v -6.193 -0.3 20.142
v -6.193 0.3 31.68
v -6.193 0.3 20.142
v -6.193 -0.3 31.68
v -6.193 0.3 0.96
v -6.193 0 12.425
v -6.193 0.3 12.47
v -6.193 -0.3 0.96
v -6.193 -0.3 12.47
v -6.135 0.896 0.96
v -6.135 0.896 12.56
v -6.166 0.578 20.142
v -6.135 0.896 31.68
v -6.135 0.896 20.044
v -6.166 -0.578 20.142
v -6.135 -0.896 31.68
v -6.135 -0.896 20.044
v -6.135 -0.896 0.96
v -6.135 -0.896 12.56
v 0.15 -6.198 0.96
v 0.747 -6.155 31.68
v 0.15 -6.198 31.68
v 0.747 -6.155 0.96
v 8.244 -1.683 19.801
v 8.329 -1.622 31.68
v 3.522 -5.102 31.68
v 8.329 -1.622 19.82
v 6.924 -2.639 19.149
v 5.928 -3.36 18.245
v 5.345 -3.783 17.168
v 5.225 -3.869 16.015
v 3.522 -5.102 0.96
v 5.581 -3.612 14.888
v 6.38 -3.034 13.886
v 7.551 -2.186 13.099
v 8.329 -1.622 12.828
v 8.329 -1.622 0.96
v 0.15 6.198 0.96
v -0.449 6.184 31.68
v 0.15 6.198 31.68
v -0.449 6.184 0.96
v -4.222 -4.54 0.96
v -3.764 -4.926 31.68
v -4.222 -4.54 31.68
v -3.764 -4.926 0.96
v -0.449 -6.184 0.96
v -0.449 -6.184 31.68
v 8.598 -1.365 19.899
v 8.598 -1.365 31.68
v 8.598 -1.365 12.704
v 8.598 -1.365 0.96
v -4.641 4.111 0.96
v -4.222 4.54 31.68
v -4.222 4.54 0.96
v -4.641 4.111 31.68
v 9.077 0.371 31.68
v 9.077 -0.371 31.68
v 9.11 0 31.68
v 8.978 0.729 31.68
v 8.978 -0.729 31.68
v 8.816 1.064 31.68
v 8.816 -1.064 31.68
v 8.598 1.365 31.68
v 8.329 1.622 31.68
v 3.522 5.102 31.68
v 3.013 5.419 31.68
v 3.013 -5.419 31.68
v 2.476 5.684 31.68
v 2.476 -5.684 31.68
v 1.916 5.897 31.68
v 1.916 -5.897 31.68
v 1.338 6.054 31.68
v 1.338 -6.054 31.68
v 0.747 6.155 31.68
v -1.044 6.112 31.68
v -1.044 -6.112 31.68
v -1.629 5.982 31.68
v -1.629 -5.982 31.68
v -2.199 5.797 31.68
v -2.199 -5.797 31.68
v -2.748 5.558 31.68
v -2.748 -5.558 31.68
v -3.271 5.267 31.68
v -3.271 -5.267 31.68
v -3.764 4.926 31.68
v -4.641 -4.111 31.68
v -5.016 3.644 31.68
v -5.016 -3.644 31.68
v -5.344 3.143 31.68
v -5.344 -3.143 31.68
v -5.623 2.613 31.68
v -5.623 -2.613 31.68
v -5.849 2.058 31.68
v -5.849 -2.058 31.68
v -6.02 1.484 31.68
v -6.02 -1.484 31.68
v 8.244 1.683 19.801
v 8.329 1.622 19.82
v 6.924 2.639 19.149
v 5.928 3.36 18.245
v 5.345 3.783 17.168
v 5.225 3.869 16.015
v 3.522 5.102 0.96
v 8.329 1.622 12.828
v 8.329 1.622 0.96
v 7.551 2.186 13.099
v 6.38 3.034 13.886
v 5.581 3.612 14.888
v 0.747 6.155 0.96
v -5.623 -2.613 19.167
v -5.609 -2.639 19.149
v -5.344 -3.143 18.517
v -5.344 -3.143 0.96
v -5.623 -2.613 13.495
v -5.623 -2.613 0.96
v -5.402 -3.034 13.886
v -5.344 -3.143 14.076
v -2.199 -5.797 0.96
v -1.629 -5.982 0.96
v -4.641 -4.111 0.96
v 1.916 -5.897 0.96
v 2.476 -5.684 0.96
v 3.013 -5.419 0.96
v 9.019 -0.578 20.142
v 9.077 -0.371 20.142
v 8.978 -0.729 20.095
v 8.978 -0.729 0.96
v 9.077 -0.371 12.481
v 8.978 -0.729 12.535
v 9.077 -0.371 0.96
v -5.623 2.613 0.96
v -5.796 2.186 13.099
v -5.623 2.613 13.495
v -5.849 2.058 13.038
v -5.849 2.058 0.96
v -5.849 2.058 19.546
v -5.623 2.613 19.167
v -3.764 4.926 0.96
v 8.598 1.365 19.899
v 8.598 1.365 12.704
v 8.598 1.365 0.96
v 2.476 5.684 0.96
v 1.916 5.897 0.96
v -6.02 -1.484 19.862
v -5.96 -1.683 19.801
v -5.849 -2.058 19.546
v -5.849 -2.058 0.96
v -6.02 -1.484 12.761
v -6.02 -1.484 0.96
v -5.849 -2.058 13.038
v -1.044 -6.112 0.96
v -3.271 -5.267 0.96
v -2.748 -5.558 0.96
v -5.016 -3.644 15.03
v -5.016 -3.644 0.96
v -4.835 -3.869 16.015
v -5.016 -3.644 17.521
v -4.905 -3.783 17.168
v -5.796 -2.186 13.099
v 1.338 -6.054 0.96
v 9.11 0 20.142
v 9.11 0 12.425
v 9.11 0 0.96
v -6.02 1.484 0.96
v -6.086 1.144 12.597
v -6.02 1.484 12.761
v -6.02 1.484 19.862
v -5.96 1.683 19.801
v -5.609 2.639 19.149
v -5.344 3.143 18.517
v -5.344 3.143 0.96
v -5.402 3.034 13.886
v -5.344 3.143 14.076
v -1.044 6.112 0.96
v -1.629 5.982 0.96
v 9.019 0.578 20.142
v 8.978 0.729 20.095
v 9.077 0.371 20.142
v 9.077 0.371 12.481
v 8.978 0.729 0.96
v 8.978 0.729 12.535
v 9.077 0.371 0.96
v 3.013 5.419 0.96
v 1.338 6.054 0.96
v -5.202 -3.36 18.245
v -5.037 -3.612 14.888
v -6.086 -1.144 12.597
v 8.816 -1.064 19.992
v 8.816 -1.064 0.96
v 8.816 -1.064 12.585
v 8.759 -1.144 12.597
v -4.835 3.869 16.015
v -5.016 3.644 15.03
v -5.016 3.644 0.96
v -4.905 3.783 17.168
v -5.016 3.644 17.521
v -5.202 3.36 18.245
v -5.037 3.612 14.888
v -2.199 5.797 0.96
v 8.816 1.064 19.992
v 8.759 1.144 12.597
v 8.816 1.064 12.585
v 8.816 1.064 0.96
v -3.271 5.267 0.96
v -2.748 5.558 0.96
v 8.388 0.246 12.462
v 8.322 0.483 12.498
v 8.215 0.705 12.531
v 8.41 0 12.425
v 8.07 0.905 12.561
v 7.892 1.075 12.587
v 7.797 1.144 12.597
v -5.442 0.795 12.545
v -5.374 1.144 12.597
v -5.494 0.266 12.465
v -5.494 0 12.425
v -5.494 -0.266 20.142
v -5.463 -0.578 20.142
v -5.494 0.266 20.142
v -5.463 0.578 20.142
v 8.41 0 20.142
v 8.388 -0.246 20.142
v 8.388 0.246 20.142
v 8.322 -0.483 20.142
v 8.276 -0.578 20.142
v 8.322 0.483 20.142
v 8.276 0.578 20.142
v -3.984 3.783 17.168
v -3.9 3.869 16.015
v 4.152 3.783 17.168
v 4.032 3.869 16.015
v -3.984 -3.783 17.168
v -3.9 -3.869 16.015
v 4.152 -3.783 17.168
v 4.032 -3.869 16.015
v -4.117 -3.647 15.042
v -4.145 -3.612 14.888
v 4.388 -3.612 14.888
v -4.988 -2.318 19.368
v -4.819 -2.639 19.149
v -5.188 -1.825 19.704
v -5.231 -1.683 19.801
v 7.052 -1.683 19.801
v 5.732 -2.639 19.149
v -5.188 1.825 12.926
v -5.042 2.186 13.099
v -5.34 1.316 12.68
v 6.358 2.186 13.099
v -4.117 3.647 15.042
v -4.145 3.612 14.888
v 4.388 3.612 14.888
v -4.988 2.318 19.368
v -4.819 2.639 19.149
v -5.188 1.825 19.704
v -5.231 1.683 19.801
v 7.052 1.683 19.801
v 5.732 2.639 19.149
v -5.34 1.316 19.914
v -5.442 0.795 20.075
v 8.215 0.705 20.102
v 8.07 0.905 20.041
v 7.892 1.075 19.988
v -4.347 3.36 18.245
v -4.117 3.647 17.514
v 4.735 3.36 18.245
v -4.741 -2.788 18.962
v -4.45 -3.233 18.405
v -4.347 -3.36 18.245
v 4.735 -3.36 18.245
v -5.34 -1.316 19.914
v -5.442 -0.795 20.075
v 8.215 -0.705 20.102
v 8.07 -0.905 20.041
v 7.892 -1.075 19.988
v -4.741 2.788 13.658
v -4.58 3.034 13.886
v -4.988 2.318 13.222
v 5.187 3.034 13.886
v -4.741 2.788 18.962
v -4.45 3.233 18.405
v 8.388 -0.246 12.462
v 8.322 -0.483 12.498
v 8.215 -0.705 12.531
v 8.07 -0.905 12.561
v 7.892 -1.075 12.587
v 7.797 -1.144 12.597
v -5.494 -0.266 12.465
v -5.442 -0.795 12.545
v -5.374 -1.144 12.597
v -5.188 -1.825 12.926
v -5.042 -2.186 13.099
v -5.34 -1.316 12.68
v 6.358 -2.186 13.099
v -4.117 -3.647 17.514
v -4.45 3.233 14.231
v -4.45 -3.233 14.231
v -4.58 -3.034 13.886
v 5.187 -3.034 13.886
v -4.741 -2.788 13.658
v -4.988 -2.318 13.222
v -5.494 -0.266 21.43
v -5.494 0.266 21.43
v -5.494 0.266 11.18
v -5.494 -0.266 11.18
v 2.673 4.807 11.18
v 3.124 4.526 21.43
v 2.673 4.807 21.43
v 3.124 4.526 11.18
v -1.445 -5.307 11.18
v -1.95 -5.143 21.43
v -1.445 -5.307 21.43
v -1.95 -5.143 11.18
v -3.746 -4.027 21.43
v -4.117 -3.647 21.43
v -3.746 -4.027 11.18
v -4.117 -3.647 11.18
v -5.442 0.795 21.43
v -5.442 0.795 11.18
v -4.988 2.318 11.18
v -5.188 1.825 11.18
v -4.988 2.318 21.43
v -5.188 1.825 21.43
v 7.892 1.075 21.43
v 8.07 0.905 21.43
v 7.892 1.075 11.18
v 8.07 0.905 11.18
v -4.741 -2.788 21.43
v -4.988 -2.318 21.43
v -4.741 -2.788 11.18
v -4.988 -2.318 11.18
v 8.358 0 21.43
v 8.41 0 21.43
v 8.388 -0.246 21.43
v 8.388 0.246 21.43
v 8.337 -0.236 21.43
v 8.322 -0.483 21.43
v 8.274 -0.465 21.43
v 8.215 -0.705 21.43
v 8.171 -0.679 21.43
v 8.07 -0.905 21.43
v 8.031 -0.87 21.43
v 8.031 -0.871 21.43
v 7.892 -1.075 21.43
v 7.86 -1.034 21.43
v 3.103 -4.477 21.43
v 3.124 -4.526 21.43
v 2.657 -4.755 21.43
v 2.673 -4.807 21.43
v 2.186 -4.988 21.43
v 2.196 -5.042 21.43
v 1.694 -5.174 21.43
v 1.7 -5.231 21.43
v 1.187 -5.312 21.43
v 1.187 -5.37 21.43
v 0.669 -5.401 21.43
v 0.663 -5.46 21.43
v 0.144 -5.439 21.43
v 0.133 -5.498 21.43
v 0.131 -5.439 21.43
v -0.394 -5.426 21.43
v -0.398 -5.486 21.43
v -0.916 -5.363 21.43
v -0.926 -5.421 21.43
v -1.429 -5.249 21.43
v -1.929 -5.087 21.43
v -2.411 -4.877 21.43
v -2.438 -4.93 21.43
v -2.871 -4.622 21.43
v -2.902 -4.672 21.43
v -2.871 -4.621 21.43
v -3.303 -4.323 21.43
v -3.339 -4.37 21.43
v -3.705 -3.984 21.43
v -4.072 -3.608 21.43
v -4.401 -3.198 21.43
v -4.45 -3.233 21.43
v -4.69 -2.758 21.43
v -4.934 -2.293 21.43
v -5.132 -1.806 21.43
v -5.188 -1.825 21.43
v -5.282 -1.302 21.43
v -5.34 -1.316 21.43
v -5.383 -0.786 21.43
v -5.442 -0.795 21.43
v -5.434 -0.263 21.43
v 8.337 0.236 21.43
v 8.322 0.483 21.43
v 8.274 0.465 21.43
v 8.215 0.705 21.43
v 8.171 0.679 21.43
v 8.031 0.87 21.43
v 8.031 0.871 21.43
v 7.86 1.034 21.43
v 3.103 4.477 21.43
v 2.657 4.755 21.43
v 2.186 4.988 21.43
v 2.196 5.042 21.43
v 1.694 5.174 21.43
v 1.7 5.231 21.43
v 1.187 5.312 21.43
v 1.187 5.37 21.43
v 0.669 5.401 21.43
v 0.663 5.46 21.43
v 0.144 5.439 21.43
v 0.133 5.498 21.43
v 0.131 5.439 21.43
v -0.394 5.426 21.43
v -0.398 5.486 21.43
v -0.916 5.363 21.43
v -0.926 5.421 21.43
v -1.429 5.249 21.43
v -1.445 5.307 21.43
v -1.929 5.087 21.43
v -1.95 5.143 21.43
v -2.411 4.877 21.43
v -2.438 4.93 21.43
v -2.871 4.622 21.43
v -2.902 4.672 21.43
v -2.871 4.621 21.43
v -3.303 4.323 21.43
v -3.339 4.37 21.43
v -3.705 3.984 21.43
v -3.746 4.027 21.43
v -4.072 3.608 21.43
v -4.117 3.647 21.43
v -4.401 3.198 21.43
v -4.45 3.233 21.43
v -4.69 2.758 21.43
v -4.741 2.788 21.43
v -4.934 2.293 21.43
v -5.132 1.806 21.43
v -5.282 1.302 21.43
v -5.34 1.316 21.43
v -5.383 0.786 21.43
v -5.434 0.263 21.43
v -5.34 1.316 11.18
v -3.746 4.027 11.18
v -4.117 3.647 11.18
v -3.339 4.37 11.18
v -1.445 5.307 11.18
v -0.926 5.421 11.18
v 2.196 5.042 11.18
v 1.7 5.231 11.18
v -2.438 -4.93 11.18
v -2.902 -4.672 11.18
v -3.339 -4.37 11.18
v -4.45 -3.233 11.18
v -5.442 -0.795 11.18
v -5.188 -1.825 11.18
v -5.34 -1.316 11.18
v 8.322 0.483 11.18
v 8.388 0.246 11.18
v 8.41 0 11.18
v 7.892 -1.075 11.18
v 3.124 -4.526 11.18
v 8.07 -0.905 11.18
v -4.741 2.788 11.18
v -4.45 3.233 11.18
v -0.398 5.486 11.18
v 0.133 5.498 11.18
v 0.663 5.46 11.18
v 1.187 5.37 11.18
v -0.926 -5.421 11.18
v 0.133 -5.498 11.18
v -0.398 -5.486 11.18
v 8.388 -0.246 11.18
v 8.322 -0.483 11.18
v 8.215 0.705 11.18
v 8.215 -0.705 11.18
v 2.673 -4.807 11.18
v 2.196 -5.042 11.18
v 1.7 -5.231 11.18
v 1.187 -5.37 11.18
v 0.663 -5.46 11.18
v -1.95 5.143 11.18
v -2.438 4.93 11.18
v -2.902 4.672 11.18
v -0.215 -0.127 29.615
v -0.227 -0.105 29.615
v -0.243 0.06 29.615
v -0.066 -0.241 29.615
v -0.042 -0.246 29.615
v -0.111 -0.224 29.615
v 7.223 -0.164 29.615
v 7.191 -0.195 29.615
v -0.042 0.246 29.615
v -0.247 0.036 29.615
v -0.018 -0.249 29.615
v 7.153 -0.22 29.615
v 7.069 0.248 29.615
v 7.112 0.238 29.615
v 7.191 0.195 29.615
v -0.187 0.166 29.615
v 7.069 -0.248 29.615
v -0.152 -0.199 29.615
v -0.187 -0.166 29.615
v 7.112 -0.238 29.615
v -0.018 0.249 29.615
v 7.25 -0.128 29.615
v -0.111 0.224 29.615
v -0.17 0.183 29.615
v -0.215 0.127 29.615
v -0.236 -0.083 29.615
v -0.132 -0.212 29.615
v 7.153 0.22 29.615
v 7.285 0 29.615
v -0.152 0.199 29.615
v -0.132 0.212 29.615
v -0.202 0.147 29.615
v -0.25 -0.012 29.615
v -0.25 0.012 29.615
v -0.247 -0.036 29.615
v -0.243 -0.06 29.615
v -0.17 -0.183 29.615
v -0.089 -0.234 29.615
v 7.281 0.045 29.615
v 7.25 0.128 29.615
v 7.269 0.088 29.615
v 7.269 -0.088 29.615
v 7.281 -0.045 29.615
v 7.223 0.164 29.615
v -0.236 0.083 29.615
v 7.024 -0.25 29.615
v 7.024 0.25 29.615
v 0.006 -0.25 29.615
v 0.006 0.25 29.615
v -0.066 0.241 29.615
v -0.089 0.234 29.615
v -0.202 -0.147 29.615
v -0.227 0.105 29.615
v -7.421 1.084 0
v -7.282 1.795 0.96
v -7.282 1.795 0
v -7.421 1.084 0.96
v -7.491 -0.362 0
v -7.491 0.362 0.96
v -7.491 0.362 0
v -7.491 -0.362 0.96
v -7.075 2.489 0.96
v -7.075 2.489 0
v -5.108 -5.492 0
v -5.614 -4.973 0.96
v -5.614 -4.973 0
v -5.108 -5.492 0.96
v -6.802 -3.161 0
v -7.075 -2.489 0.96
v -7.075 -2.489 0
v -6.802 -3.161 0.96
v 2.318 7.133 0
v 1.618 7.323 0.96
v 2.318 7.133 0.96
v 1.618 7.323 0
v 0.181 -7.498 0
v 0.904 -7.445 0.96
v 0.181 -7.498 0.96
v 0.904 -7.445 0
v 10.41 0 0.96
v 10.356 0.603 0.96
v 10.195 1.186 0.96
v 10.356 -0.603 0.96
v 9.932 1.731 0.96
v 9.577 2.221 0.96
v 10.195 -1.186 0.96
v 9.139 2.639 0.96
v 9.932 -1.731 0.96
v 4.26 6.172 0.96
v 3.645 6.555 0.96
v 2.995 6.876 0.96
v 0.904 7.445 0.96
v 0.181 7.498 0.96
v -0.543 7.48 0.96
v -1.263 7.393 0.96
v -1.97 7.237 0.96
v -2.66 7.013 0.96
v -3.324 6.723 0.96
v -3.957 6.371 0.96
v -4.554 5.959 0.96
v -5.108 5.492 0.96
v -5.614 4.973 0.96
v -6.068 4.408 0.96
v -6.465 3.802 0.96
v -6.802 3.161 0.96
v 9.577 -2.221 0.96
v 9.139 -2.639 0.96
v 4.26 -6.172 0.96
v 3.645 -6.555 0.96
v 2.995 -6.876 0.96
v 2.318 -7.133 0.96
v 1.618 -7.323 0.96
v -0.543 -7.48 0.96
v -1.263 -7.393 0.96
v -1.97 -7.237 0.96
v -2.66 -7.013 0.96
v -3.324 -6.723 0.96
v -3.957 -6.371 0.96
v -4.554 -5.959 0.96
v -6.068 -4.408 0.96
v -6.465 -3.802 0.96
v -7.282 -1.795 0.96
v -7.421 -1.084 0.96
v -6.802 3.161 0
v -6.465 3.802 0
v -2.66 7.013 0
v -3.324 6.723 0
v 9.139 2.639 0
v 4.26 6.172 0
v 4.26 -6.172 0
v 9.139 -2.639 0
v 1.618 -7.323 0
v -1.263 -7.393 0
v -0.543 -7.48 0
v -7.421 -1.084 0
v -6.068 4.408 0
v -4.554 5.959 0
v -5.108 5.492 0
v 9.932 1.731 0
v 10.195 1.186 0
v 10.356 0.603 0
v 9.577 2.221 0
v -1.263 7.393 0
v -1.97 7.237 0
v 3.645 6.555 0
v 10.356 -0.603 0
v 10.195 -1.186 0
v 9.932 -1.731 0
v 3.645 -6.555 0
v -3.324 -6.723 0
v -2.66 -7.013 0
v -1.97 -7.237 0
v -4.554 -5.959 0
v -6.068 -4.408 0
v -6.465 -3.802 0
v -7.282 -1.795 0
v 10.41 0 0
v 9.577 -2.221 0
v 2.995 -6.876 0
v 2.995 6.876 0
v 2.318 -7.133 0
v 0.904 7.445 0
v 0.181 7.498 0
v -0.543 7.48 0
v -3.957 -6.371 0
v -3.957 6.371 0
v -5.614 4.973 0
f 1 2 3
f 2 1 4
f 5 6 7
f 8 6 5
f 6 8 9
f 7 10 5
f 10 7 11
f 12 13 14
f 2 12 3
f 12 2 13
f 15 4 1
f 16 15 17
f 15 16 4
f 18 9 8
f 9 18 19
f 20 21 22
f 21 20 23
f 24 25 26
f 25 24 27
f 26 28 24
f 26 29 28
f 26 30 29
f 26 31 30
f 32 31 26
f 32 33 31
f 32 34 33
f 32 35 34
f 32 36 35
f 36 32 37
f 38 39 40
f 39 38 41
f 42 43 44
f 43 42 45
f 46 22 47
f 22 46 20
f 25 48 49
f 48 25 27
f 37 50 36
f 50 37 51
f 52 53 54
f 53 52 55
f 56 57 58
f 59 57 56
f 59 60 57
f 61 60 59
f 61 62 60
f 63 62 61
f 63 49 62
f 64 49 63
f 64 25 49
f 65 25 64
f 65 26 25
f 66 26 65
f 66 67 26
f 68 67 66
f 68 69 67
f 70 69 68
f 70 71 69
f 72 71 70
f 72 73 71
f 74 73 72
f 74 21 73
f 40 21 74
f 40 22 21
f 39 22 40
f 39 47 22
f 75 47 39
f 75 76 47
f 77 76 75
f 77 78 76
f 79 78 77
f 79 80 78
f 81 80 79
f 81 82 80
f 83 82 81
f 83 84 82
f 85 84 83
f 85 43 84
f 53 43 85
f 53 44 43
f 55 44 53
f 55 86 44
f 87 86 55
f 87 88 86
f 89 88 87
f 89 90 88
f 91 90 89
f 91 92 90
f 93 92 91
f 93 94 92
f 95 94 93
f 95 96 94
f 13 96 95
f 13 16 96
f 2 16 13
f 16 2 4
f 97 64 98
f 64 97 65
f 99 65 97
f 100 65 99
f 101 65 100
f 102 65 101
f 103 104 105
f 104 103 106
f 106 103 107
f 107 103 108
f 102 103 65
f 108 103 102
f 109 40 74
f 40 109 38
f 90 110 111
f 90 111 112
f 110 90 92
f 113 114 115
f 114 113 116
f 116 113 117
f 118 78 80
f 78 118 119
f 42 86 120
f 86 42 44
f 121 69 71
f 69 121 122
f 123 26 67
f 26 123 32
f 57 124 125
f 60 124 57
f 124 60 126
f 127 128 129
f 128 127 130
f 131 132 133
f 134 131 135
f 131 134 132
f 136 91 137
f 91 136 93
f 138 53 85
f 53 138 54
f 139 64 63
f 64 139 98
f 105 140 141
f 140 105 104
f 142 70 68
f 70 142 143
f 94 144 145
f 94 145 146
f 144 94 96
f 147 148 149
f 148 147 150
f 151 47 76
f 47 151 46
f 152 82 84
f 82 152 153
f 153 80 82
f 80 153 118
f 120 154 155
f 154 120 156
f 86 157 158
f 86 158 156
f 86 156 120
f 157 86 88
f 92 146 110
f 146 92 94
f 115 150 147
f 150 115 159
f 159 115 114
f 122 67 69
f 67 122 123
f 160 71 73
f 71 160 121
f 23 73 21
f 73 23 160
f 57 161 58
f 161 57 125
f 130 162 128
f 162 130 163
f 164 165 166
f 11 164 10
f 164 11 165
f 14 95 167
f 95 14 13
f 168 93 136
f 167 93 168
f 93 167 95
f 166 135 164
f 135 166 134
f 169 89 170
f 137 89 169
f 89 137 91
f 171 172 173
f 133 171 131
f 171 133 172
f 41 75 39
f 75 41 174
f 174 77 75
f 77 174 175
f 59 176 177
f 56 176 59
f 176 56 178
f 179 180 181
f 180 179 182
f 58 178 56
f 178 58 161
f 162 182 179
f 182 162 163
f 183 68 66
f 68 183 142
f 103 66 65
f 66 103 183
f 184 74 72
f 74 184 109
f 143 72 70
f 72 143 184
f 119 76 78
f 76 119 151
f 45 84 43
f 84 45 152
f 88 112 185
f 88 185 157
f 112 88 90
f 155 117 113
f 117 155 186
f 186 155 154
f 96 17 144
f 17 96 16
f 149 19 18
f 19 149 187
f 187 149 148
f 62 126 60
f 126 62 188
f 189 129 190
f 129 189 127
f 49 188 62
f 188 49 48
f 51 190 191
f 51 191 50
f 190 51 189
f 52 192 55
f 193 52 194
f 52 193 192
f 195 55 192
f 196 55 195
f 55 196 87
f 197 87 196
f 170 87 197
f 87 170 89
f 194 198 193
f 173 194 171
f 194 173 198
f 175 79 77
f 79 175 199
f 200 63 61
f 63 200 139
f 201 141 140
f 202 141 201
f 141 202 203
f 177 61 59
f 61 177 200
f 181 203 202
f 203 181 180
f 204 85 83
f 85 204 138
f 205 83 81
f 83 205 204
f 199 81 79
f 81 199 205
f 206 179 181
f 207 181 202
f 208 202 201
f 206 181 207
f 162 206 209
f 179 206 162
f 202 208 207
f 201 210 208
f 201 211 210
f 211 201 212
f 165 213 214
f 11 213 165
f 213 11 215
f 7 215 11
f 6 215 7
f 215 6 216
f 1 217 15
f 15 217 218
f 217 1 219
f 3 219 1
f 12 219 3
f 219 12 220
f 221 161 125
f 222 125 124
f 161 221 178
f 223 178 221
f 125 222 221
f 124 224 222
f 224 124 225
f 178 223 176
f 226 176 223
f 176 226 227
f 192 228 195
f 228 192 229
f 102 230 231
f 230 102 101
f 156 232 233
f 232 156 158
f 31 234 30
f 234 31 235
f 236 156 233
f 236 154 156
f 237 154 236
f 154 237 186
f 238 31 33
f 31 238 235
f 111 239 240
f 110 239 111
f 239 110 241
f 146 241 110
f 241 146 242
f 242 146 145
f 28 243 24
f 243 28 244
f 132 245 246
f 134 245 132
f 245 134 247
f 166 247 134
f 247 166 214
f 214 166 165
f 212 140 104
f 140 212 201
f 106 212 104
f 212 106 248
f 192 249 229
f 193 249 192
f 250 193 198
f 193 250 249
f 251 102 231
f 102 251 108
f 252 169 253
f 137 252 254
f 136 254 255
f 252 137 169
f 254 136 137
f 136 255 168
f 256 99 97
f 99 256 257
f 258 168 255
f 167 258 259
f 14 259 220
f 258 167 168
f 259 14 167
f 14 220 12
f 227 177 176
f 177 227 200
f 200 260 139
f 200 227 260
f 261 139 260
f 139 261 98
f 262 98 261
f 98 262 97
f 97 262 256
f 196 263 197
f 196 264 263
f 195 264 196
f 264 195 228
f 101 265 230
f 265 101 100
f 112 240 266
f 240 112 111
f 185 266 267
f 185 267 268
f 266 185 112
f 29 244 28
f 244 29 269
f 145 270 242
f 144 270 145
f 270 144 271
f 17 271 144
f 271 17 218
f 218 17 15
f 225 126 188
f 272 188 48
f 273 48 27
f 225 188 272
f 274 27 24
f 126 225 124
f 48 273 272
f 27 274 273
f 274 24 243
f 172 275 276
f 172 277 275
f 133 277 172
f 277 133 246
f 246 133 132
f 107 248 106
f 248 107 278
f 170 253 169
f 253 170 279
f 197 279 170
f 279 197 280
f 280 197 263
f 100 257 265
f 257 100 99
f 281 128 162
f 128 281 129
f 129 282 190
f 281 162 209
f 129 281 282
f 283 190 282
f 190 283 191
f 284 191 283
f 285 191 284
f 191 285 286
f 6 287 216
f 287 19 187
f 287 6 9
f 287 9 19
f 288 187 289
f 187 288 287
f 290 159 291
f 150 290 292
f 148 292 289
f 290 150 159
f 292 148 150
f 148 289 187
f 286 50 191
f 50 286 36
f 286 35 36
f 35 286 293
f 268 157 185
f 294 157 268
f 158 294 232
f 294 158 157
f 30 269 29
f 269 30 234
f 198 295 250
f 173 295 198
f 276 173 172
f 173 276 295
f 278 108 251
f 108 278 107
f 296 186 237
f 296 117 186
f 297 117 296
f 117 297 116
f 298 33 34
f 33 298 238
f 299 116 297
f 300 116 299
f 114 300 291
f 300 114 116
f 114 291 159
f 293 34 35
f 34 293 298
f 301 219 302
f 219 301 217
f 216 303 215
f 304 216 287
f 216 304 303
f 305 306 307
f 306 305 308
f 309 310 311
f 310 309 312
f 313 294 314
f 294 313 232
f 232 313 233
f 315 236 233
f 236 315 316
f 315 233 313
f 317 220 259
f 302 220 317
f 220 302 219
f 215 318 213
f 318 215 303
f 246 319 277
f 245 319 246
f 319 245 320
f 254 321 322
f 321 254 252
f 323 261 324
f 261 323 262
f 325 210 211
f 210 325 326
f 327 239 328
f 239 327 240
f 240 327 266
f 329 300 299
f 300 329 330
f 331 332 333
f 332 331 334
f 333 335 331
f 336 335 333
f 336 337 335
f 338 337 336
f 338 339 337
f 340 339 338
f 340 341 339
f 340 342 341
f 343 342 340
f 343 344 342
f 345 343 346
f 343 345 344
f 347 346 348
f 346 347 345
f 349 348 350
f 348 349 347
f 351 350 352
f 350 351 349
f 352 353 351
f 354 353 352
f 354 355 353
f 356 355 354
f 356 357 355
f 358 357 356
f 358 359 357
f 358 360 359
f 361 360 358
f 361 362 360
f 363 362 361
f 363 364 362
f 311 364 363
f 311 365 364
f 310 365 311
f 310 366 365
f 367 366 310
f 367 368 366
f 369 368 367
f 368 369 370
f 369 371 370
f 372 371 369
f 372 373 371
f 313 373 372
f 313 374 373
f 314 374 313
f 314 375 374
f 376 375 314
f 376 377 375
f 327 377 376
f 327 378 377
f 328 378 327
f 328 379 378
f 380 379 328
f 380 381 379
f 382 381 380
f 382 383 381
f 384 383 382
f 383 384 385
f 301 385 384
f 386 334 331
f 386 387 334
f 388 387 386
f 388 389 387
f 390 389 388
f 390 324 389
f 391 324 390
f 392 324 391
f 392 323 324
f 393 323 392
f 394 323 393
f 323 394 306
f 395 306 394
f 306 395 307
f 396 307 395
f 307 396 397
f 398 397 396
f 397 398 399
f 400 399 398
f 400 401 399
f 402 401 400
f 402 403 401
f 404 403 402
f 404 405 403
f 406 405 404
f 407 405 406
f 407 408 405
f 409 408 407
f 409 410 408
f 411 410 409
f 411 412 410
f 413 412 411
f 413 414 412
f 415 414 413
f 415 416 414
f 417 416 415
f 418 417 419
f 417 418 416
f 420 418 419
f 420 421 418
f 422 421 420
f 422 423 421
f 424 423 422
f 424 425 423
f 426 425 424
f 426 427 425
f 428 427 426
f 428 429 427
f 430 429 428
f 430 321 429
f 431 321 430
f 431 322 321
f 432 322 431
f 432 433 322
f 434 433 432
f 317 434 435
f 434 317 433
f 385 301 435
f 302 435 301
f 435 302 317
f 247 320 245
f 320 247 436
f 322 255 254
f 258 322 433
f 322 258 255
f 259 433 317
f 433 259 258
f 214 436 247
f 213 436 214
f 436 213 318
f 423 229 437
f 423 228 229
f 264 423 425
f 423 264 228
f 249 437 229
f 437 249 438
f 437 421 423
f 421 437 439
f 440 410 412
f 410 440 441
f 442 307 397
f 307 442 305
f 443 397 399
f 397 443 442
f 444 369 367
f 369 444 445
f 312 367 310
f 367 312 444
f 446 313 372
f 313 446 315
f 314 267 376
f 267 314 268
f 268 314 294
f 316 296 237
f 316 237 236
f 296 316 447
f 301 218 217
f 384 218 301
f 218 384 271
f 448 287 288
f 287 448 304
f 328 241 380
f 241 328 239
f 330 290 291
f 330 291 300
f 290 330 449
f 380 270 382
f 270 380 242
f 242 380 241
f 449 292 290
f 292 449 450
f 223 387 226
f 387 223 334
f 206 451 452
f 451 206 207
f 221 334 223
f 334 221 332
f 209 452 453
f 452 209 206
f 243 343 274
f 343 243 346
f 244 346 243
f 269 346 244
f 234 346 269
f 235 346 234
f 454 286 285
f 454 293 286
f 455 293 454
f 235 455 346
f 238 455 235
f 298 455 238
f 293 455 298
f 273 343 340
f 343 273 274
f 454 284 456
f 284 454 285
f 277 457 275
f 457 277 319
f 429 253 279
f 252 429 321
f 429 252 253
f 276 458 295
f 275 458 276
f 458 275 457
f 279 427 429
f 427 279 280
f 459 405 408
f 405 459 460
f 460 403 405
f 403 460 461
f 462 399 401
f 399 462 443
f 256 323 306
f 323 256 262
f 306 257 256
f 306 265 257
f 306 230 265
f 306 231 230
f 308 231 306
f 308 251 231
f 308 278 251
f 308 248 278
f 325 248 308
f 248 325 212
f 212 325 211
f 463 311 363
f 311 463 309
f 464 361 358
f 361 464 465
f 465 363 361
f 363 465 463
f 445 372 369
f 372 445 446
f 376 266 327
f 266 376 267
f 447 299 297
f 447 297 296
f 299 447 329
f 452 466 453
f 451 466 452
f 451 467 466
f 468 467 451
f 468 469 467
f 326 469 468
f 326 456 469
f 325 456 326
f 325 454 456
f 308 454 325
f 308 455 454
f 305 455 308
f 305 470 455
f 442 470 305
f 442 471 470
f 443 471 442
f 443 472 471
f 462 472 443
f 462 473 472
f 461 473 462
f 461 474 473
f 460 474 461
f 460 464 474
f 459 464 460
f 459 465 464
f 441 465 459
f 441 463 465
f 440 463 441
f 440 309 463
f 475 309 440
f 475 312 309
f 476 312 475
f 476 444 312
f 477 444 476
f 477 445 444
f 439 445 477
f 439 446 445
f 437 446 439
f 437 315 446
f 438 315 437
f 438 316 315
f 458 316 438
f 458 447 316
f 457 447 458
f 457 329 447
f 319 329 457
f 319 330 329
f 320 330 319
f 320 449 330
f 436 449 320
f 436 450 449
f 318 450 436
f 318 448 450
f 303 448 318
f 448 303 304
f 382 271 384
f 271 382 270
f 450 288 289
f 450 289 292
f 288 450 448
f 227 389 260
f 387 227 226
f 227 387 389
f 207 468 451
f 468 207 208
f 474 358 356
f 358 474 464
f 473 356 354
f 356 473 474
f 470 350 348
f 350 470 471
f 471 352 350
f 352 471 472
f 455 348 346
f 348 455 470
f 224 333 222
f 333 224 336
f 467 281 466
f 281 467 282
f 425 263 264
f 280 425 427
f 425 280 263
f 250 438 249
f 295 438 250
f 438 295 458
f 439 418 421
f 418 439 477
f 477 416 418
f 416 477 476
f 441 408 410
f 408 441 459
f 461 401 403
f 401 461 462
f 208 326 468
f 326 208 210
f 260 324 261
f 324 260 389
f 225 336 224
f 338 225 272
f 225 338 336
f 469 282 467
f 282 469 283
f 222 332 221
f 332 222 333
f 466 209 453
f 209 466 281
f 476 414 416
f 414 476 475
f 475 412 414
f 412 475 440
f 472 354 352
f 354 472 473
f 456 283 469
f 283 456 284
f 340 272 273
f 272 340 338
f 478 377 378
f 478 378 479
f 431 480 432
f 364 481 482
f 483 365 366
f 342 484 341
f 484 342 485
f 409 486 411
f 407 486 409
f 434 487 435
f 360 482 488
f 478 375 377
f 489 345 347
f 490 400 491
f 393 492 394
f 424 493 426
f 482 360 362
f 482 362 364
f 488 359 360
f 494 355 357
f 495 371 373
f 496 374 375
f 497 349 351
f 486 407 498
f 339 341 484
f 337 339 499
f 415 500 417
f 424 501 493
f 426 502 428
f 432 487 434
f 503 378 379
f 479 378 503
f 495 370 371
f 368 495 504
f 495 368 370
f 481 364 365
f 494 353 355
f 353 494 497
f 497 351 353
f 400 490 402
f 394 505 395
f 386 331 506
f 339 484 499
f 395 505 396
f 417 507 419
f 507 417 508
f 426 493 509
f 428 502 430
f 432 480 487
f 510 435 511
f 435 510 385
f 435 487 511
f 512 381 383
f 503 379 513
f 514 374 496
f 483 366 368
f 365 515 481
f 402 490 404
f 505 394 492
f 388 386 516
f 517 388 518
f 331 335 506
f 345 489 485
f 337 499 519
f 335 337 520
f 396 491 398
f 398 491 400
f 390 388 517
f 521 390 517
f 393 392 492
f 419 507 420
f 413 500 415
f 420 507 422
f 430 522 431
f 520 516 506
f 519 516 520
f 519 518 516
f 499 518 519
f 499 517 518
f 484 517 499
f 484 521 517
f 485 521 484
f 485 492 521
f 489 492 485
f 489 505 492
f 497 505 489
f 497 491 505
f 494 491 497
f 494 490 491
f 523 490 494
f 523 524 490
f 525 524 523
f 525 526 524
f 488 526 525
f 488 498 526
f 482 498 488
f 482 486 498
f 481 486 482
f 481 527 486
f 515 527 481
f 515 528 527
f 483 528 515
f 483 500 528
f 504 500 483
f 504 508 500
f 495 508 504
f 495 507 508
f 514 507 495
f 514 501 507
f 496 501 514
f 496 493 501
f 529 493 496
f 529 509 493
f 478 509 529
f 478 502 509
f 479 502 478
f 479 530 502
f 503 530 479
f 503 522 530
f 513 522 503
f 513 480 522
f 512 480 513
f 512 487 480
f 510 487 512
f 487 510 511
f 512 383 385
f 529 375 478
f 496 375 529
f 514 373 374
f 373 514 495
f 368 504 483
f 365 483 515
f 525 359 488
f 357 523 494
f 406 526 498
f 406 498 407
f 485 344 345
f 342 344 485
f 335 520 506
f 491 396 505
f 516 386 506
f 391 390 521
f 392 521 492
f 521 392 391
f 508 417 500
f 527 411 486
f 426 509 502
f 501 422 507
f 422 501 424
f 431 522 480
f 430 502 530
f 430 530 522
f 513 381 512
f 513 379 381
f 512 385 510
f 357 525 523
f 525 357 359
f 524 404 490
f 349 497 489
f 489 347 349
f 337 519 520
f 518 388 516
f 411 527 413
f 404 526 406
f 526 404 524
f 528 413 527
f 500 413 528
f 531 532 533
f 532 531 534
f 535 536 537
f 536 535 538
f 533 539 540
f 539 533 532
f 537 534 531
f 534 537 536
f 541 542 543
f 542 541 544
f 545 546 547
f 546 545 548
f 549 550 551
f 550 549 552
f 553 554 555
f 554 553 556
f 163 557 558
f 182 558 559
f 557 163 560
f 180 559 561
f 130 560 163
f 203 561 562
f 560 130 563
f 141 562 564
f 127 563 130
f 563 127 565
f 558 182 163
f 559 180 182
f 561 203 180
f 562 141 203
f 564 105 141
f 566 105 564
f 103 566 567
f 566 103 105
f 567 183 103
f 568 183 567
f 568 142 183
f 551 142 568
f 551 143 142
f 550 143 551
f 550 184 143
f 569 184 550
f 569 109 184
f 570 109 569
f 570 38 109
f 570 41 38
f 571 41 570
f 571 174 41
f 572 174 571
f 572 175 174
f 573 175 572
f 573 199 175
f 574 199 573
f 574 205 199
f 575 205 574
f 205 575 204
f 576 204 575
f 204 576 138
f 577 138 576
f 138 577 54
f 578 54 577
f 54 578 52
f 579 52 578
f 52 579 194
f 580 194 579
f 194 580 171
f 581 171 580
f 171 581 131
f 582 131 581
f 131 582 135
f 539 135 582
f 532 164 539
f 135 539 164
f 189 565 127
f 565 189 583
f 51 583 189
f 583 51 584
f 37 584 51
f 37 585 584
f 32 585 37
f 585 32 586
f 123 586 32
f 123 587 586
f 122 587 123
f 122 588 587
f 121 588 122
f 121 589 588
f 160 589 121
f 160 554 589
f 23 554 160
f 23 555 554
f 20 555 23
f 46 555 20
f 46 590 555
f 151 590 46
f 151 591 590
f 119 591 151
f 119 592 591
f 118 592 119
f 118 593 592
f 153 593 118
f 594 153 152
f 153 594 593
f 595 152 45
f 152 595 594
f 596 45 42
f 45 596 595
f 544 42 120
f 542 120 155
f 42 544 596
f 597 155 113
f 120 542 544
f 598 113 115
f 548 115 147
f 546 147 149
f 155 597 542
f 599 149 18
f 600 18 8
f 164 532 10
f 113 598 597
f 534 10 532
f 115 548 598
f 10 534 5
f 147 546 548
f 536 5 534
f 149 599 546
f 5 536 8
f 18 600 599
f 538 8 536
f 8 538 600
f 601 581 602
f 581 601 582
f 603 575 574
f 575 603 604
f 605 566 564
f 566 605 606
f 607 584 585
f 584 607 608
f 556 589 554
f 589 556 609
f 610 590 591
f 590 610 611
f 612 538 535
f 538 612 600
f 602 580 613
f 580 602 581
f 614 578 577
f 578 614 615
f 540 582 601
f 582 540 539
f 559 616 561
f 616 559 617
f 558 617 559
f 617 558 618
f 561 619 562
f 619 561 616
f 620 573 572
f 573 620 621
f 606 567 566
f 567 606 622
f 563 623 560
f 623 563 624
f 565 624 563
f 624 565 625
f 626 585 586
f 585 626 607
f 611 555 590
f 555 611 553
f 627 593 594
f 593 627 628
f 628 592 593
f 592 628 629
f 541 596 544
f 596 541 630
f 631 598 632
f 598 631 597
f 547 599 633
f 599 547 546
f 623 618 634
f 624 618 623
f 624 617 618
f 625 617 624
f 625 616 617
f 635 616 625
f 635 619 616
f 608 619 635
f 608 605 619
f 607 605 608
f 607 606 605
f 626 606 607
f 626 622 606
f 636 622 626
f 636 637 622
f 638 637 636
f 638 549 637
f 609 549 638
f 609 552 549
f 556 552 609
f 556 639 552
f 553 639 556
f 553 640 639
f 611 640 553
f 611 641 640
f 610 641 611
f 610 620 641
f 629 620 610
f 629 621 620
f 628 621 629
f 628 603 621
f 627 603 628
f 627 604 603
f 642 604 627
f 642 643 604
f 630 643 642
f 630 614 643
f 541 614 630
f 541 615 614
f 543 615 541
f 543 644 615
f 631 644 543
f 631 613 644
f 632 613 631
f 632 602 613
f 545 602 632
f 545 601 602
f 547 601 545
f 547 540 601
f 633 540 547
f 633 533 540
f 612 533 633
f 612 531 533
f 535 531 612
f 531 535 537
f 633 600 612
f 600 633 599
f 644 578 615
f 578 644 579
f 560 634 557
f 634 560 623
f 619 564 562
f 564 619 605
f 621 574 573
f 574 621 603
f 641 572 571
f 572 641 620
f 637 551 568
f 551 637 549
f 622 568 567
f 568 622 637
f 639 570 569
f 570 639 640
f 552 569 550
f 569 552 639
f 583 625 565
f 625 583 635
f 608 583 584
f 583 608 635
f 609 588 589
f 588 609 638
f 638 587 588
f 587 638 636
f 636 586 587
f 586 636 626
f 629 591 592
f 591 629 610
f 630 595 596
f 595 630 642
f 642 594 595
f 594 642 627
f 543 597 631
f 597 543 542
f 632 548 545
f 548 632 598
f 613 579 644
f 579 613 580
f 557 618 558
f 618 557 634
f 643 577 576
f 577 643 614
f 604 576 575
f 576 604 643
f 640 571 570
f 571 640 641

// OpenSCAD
dia = 13;
length = 15.91;
dia2 = 4.75;
sensor_h = 30.75;

bolt_dia = 5.76;

clr = 0.3;

chipx = 2.47;
chipy = 3.07;
chipz = 0.96;

module main() {
    difference() {
        hull() {
            cylinder(d= dia-2*clr, h = sensor_h, $fn= 65, center=false);
            translate([length-dia/2-dia2/2,0,0])
                cylinder(d= dia2-2*clr, h = sensor_h, $fn= 35, center=false);
        }
        translate([0,0,sensor_h/2])
            rotate([0,90,0])
                cylinder(d = bolt_dia+2, h = length + 4, $fn = 21, center=true);
        translate([0,0,sensor_h*1/3]) hull() {
            cylinder(d= dia-2, h = sensor_h*1/3, $fn= 65, center=false);
            translate([length-dia/2-dia2/2,0,0])
                cylinder(d= dia2-2, h = sensor_h*1/3, $fn= 35, center=false);
        }
        translate([0,0,sensor_h*2/3-0.015]) hull() {
            cylinder(d1= dia-2.1, d2= 0.5,  h = sensor_h*0.8/3, $fn= 65, center=false);
            translate([length-dia/2-dia2/2,0,0])
                cylinder(d1= dia2-2.1, d2= 0.5, h = sensor_h*0.8/3, $fn= 35, center=false);
        }
    }
}

module cap() {
    
    hull() {
        cylinder(d= dia+2, h = chipz, $fn= 65, center=false);
        translate([length-dia/2-dia2/2,0,0])
            cylinder(d= dia2+2, h = chipz, $fn= 35, center=false);
    }
}

module chip_carrier() {
    cube([chipx, chipy, chipz]);
}

union() {
    translate([0,0,chipz-0.03]) main();
    cap();
    //translate([10.85, -chipy/2, -0.1], center=false) chip_carrier();
    // translate([9, -1.3/2, -0.04]) cube([3, 1.3, 0.8]);
}
